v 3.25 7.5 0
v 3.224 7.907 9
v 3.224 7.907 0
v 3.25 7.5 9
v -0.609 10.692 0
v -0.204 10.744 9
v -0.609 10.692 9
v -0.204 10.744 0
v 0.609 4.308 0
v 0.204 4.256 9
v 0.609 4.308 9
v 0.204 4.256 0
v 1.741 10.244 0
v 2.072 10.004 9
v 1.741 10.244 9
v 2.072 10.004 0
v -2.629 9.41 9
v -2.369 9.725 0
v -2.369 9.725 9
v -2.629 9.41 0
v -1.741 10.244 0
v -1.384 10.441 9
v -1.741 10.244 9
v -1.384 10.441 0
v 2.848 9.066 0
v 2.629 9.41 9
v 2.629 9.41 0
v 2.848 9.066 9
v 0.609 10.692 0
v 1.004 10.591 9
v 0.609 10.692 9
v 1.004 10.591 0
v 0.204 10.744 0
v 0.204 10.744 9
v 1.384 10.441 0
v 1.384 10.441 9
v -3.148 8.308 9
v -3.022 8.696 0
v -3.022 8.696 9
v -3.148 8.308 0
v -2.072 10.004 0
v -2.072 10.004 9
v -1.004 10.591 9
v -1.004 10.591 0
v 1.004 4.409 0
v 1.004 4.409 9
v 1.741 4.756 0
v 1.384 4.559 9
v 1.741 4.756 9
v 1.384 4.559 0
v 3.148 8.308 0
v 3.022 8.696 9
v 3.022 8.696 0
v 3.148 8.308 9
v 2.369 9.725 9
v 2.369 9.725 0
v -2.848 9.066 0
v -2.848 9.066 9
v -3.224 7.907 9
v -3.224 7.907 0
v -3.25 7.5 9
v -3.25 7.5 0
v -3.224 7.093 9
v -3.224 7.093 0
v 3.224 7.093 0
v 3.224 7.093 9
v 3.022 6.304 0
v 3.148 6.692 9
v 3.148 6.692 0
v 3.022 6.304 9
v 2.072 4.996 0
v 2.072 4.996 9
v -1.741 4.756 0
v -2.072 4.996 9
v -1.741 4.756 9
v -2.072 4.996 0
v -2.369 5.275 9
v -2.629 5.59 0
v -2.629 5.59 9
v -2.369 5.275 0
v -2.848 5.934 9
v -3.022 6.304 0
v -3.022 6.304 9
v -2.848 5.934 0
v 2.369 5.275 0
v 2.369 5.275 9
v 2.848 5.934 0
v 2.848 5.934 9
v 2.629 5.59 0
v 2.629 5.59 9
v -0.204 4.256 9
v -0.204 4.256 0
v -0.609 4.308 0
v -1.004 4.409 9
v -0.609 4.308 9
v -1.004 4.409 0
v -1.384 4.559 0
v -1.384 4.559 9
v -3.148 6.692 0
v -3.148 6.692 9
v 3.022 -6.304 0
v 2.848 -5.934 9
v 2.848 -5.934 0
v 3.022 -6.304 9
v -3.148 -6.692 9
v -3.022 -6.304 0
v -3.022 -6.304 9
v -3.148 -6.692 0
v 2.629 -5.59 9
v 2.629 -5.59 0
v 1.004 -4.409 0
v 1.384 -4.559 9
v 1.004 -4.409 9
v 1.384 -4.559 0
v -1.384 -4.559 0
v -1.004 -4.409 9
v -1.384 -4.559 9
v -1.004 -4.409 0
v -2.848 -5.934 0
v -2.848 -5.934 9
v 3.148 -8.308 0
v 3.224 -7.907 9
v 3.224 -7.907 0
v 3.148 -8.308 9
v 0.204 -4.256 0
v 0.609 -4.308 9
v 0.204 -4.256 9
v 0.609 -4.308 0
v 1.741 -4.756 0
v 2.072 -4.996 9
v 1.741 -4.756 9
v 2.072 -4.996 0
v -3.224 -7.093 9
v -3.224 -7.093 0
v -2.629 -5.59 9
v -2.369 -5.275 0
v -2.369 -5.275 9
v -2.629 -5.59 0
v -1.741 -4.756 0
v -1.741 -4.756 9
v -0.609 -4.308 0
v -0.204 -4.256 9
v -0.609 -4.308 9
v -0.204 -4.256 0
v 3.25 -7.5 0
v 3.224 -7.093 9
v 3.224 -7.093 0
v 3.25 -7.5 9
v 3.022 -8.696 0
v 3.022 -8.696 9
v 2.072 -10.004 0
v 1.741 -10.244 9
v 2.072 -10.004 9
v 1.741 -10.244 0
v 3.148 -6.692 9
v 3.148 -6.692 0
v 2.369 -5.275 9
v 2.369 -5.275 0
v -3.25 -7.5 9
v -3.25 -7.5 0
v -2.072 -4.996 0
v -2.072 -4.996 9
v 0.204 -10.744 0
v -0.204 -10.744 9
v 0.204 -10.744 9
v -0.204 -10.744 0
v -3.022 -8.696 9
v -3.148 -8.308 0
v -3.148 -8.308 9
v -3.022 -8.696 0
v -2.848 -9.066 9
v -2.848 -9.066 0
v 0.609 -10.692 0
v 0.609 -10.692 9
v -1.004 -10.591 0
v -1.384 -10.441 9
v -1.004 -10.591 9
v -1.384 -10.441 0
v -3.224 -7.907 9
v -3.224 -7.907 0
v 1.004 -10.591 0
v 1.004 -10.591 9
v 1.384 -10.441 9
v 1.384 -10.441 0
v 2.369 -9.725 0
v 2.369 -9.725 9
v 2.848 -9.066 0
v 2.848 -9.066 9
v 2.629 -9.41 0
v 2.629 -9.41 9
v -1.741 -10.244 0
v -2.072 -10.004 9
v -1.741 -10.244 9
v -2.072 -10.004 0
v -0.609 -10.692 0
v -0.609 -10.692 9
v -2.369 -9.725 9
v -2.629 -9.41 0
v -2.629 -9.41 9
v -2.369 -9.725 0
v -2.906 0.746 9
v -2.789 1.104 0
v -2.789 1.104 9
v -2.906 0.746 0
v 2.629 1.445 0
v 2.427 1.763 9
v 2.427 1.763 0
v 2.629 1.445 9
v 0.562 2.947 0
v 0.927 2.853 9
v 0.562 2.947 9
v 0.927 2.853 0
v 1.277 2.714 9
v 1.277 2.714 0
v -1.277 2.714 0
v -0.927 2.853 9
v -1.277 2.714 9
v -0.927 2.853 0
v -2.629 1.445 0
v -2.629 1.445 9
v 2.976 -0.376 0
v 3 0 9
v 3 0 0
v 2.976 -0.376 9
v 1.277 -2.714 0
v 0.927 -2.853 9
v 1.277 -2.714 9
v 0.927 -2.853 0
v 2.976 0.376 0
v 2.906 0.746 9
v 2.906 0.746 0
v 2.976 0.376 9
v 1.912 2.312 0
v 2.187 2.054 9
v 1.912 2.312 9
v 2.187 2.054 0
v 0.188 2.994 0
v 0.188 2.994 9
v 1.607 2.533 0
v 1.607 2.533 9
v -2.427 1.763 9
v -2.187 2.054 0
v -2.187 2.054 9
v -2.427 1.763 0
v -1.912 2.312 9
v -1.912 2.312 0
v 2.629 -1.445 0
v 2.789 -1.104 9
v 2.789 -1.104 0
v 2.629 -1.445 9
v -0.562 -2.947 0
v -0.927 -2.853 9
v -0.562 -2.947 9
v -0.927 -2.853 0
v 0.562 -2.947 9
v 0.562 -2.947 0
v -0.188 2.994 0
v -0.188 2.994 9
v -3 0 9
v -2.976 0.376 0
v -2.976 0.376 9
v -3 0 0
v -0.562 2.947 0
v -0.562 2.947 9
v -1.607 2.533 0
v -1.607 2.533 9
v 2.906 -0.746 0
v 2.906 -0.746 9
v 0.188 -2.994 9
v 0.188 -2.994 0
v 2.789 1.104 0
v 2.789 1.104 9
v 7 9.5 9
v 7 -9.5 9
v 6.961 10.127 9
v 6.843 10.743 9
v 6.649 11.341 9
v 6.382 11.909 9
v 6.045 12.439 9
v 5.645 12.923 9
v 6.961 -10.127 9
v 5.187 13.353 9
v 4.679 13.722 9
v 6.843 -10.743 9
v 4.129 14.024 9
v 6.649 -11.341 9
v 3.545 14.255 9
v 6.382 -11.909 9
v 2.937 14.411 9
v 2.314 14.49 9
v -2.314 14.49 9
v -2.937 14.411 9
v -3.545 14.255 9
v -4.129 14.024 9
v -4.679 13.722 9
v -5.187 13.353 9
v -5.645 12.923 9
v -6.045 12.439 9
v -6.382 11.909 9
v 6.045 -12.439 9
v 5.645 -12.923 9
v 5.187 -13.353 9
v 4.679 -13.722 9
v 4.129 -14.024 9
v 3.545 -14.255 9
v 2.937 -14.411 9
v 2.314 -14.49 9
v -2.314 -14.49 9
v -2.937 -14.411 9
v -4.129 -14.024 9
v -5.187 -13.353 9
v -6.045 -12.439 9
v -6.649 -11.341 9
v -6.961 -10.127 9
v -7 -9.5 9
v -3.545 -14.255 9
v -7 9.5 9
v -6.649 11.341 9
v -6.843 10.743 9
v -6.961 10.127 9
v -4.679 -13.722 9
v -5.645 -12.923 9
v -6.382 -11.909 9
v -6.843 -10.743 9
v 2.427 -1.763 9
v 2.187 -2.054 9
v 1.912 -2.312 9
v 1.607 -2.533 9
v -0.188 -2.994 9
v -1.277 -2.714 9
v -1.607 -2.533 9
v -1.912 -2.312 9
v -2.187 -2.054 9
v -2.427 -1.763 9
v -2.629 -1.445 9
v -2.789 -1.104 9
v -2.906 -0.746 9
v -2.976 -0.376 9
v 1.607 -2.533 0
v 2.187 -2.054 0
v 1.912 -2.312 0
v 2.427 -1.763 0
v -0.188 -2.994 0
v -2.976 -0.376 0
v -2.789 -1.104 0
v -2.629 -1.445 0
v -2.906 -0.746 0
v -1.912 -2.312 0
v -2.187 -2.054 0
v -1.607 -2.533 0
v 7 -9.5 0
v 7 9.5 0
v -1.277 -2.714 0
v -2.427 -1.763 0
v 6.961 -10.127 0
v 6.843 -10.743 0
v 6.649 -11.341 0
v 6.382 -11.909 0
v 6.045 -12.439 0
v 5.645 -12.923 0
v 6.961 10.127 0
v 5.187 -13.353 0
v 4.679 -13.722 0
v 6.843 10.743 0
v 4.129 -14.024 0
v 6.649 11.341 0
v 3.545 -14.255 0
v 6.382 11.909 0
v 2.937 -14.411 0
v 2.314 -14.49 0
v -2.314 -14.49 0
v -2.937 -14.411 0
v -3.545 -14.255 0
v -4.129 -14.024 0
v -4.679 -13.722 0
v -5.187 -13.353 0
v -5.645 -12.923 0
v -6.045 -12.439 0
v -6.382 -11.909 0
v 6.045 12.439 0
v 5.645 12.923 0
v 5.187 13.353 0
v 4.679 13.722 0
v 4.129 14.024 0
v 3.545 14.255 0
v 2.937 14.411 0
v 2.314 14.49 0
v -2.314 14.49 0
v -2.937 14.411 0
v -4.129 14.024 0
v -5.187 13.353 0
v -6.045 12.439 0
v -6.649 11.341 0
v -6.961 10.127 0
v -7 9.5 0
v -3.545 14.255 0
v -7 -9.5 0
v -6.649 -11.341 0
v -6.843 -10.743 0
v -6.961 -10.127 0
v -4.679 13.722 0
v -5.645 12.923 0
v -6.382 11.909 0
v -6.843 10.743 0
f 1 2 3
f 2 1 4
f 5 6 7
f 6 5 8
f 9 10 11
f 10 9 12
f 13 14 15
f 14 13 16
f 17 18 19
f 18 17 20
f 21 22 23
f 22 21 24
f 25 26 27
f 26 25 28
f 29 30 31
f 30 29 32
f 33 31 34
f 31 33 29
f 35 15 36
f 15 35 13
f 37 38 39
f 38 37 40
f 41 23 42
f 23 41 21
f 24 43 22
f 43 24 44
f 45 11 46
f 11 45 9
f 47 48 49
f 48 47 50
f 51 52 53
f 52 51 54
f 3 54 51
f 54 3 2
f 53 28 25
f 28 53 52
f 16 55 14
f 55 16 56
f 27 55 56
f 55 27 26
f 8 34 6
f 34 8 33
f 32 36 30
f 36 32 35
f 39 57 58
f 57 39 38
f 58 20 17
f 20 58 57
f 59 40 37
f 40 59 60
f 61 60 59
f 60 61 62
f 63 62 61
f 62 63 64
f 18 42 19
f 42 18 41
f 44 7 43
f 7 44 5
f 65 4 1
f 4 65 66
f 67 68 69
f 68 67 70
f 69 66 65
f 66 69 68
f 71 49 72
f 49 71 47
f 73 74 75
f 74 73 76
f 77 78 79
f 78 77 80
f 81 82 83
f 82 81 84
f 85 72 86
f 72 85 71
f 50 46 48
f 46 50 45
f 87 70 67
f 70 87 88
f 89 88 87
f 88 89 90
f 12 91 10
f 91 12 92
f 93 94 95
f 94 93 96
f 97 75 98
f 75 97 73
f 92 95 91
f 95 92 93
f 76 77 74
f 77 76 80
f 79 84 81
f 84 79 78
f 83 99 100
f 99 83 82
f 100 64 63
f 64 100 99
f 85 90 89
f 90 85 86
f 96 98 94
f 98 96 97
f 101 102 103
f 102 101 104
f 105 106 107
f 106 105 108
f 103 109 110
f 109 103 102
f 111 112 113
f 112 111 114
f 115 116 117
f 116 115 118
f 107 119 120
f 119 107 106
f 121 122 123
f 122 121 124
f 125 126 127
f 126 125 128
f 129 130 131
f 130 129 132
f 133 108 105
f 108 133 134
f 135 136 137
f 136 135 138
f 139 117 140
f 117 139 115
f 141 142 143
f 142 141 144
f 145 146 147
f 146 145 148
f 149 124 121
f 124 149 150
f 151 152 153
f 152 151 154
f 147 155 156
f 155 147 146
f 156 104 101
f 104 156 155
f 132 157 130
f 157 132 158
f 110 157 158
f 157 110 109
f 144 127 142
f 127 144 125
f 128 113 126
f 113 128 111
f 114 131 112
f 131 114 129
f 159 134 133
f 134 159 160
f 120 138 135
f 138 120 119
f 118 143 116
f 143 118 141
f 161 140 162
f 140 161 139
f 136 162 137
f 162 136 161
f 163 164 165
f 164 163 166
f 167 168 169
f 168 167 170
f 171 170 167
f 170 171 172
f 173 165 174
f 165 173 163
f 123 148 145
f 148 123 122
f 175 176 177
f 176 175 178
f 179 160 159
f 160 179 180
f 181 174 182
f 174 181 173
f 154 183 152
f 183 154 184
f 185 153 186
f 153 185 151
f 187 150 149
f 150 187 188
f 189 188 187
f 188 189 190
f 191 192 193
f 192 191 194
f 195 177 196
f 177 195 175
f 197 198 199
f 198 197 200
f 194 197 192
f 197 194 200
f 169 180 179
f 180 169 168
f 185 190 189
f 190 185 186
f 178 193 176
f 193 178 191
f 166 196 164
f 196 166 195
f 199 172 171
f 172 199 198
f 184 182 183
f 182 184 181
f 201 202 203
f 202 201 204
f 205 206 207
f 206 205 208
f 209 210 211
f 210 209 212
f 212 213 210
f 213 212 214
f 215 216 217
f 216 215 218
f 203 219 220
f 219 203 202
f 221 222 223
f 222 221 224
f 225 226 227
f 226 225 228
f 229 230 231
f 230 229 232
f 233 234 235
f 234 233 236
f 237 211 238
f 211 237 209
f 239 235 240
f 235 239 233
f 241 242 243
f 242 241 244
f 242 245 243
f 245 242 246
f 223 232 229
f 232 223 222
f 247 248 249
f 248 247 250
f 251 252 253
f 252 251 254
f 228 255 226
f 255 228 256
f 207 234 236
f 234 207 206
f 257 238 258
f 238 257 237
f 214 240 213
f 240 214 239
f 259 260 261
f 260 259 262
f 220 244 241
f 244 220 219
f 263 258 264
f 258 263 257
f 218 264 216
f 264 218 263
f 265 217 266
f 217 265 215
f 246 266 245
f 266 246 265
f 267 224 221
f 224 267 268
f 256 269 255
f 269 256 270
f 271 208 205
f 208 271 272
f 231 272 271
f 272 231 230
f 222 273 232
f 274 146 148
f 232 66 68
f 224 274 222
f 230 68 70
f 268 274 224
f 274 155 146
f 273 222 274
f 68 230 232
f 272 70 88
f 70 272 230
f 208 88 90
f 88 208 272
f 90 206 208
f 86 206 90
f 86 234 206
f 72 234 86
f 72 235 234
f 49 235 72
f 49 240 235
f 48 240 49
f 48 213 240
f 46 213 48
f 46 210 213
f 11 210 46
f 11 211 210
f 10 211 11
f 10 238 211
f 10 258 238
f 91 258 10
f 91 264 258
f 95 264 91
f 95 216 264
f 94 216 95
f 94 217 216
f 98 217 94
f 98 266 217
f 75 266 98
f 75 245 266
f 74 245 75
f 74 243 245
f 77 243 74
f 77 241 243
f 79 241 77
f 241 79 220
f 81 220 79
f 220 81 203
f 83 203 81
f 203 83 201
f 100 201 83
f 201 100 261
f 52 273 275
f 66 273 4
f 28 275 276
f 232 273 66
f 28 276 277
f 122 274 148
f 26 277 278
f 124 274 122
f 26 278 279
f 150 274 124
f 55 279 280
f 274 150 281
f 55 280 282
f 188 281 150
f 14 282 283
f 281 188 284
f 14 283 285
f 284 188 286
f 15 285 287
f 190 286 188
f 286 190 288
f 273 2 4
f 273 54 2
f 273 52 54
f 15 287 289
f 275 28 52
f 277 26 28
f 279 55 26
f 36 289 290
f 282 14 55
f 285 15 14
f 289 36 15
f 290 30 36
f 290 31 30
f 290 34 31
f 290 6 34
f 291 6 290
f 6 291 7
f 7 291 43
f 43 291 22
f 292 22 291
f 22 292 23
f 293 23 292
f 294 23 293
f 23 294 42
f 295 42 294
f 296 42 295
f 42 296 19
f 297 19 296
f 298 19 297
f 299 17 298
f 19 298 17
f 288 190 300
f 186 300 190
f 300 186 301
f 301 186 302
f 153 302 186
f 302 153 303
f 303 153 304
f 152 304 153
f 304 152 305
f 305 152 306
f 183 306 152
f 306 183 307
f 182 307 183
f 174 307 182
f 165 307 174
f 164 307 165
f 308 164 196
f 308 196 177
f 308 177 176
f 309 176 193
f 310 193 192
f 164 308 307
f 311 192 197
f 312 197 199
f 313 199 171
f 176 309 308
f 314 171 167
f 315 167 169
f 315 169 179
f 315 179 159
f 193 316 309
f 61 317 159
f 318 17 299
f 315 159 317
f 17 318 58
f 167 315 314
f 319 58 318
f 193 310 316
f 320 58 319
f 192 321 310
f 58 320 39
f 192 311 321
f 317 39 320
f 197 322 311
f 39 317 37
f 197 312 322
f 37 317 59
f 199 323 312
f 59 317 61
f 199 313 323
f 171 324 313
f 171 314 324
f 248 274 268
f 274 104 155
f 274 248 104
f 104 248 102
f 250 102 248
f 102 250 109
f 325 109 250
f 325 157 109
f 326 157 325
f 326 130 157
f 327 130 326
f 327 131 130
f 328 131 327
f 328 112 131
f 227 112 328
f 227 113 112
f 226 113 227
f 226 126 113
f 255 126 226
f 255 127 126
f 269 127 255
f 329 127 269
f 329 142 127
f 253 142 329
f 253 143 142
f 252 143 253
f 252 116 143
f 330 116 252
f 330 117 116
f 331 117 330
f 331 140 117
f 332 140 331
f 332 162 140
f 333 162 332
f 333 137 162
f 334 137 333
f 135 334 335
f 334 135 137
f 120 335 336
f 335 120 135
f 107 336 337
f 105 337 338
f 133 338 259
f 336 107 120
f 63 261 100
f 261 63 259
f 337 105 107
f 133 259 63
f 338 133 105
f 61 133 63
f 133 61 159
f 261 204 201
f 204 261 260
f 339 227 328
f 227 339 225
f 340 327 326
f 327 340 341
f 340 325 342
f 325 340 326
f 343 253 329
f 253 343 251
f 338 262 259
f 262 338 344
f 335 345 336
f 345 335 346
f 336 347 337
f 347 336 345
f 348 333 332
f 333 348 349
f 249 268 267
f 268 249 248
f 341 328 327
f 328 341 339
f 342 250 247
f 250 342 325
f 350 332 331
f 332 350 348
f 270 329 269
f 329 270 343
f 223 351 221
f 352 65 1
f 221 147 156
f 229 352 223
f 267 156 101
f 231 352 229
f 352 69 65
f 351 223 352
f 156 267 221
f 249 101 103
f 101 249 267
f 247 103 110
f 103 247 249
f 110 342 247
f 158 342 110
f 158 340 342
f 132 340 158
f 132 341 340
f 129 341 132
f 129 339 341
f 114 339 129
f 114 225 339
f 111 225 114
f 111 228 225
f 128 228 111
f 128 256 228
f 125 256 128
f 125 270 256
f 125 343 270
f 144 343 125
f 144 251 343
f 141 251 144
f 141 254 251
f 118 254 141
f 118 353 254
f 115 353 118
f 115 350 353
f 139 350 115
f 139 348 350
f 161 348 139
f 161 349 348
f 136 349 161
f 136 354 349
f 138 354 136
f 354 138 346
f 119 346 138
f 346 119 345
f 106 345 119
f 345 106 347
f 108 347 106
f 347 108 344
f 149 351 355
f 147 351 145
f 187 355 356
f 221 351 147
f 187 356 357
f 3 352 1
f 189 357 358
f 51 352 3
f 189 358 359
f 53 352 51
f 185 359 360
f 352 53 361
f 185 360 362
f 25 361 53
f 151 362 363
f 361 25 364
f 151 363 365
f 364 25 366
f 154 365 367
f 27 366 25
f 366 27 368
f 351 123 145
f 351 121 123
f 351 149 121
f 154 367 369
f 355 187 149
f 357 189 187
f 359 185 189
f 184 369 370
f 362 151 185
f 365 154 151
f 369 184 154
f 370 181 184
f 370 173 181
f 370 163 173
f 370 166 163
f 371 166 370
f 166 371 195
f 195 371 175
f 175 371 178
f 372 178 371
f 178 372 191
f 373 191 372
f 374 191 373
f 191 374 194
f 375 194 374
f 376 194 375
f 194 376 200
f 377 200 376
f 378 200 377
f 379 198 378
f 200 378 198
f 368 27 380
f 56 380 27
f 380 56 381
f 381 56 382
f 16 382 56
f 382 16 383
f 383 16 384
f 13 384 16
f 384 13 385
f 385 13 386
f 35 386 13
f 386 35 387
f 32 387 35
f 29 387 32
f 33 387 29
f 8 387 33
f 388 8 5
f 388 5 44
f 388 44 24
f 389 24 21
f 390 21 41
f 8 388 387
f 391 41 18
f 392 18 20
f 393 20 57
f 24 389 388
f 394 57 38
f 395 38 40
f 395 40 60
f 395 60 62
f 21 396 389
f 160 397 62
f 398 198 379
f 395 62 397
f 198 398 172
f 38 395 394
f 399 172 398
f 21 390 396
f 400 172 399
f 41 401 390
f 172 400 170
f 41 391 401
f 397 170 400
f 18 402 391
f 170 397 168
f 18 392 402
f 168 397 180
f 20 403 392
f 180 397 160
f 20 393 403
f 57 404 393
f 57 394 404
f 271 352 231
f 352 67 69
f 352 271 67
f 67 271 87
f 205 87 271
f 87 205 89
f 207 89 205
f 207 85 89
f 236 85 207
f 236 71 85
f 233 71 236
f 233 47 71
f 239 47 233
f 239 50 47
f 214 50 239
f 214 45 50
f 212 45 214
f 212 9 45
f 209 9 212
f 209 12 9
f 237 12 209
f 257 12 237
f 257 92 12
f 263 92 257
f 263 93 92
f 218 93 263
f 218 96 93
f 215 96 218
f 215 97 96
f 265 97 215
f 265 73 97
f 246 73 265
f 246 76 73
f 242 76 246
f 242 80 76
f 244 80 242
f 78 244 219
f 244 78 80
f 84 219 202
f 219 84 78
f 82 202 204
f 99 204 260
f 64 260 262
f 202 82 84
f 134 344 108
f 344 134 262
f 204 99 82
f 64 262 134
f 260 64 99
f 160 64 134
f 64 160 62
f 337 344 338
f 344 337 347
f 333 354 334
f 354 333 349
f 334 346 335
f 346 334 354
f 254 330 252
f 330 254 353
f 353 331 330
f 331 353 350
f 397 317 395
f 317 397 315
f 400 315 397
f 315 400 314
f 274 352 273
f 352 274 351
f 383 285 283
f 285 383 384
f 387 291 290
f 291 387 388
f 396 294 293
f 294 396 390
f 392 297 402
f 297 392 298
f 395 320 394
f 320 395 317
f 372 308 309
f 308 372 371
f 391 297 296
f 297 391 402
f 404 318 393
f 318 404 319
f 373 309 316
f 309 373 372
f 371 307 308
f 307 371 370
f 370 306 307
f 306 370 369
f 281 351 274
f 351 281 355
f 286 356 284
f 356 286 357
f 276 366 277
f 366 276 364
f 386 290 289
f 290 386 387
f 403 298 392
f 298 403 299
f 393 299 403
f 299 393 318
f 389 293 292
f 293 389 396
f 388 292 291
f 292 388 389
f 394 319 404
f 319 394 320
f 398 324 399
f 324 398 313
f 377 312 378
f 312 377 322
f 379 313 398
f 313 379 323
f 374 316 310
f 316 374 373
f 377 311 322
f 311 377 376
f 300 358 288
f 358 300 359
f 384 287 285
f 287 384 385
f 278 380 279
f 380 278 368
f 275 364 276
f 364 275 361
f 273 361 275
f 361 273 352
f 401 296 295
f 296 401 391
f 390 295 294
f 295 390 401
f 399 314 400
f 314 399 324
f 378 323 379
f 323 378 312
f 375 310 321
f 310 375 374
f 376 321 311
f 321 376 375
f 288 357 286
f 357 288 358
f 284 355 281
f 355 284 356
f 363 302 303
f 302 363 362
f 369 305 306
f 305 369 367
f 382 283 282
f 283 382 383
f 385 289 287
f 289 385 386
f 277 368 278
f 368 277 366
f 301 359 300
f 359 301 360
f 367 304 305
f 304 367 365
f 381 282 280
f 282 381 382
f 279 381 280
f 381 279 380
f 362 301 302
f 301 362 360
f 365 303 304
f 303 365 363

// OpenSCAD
$fn = 50;


difference() {
	union() {
		hull() {
			translate(v = [-2.0000000000, 9.5000000000, 0]) {
				cylinder(h = 9, r = 5);
			}
			translate(v = [2.0000000000, 9.5000000000, 0]) {
				cylinder(h = 9, r = 5);
			}
			translate(v = [-2.0000000000, -9.5000000000, 0]) {
				cylinder(h = 9, r = 5);
			}
			translate(v = [2.0000000000, -9.5000000000, 0]) {
				cylinder(h = 9, r = 5);
			}
		}
	}
	union() {
		#translate(v = [0.0000000000, 7.5000000000, 0]) {
			cylinder(h = 9, r = 3.2500000000);
		}
		#translate(v = [0.0000000000, -7.5000000000, 0]) {
			cylinder(h = 9, r = 3.2500000000);
		}
		#translate(v = [0.0000000000, -7.5000000000, -100.0000000000]) {
			cylinder(h = 200, r = 3.2500000000);
		}
		#translate(v = [0.0000000000, -7.5000000000, -100.0000000000]) {
			cylinder(h = 200, r = 3.2500000000);
		}
		#translate(v = [0.0000000000, 7.5000000000, -100.0000000000]) {
			cylinder(h = 200, r = 3.2500000000);
		}
		#translate(v = [0.0000000000, 7.5000000000, -100.0000000000]) {
			cylinder(h = 200, r = 3.2500000000);
		}
		#translate(v = [0.0000000000, 7.5000000000, 0]) {
			cylinder(h = 9, r = 1.8000000000);
		}
		#translate(v = [0.0000000000, -7.5000000000, 0]) {
			cylinder(h = 9, r = 1.8000000000);
		}
		#translate(v = [0.0000000000, 7.5000000000, 0]) {
			cylinder(h = 9, r = 1.8000000000);
		}
		#translate(v = [0.0000000000, -7.5000000000, 0]) {
			cylinder(h = 9, r = 1.8000000000);
		}
		#translate(v = [0.0000000000, 7.5000000000, 0]) {
			cylinder(h = 9, r = 1.8000000000);
		}
		#translate(v = [0.0000000000, -7.5000000000, 0]) {
			cylinder(h = 9, r = 1.8000000000);
		}
		#cylinder(h = 9, r = 3.0000000000);
	}
}
